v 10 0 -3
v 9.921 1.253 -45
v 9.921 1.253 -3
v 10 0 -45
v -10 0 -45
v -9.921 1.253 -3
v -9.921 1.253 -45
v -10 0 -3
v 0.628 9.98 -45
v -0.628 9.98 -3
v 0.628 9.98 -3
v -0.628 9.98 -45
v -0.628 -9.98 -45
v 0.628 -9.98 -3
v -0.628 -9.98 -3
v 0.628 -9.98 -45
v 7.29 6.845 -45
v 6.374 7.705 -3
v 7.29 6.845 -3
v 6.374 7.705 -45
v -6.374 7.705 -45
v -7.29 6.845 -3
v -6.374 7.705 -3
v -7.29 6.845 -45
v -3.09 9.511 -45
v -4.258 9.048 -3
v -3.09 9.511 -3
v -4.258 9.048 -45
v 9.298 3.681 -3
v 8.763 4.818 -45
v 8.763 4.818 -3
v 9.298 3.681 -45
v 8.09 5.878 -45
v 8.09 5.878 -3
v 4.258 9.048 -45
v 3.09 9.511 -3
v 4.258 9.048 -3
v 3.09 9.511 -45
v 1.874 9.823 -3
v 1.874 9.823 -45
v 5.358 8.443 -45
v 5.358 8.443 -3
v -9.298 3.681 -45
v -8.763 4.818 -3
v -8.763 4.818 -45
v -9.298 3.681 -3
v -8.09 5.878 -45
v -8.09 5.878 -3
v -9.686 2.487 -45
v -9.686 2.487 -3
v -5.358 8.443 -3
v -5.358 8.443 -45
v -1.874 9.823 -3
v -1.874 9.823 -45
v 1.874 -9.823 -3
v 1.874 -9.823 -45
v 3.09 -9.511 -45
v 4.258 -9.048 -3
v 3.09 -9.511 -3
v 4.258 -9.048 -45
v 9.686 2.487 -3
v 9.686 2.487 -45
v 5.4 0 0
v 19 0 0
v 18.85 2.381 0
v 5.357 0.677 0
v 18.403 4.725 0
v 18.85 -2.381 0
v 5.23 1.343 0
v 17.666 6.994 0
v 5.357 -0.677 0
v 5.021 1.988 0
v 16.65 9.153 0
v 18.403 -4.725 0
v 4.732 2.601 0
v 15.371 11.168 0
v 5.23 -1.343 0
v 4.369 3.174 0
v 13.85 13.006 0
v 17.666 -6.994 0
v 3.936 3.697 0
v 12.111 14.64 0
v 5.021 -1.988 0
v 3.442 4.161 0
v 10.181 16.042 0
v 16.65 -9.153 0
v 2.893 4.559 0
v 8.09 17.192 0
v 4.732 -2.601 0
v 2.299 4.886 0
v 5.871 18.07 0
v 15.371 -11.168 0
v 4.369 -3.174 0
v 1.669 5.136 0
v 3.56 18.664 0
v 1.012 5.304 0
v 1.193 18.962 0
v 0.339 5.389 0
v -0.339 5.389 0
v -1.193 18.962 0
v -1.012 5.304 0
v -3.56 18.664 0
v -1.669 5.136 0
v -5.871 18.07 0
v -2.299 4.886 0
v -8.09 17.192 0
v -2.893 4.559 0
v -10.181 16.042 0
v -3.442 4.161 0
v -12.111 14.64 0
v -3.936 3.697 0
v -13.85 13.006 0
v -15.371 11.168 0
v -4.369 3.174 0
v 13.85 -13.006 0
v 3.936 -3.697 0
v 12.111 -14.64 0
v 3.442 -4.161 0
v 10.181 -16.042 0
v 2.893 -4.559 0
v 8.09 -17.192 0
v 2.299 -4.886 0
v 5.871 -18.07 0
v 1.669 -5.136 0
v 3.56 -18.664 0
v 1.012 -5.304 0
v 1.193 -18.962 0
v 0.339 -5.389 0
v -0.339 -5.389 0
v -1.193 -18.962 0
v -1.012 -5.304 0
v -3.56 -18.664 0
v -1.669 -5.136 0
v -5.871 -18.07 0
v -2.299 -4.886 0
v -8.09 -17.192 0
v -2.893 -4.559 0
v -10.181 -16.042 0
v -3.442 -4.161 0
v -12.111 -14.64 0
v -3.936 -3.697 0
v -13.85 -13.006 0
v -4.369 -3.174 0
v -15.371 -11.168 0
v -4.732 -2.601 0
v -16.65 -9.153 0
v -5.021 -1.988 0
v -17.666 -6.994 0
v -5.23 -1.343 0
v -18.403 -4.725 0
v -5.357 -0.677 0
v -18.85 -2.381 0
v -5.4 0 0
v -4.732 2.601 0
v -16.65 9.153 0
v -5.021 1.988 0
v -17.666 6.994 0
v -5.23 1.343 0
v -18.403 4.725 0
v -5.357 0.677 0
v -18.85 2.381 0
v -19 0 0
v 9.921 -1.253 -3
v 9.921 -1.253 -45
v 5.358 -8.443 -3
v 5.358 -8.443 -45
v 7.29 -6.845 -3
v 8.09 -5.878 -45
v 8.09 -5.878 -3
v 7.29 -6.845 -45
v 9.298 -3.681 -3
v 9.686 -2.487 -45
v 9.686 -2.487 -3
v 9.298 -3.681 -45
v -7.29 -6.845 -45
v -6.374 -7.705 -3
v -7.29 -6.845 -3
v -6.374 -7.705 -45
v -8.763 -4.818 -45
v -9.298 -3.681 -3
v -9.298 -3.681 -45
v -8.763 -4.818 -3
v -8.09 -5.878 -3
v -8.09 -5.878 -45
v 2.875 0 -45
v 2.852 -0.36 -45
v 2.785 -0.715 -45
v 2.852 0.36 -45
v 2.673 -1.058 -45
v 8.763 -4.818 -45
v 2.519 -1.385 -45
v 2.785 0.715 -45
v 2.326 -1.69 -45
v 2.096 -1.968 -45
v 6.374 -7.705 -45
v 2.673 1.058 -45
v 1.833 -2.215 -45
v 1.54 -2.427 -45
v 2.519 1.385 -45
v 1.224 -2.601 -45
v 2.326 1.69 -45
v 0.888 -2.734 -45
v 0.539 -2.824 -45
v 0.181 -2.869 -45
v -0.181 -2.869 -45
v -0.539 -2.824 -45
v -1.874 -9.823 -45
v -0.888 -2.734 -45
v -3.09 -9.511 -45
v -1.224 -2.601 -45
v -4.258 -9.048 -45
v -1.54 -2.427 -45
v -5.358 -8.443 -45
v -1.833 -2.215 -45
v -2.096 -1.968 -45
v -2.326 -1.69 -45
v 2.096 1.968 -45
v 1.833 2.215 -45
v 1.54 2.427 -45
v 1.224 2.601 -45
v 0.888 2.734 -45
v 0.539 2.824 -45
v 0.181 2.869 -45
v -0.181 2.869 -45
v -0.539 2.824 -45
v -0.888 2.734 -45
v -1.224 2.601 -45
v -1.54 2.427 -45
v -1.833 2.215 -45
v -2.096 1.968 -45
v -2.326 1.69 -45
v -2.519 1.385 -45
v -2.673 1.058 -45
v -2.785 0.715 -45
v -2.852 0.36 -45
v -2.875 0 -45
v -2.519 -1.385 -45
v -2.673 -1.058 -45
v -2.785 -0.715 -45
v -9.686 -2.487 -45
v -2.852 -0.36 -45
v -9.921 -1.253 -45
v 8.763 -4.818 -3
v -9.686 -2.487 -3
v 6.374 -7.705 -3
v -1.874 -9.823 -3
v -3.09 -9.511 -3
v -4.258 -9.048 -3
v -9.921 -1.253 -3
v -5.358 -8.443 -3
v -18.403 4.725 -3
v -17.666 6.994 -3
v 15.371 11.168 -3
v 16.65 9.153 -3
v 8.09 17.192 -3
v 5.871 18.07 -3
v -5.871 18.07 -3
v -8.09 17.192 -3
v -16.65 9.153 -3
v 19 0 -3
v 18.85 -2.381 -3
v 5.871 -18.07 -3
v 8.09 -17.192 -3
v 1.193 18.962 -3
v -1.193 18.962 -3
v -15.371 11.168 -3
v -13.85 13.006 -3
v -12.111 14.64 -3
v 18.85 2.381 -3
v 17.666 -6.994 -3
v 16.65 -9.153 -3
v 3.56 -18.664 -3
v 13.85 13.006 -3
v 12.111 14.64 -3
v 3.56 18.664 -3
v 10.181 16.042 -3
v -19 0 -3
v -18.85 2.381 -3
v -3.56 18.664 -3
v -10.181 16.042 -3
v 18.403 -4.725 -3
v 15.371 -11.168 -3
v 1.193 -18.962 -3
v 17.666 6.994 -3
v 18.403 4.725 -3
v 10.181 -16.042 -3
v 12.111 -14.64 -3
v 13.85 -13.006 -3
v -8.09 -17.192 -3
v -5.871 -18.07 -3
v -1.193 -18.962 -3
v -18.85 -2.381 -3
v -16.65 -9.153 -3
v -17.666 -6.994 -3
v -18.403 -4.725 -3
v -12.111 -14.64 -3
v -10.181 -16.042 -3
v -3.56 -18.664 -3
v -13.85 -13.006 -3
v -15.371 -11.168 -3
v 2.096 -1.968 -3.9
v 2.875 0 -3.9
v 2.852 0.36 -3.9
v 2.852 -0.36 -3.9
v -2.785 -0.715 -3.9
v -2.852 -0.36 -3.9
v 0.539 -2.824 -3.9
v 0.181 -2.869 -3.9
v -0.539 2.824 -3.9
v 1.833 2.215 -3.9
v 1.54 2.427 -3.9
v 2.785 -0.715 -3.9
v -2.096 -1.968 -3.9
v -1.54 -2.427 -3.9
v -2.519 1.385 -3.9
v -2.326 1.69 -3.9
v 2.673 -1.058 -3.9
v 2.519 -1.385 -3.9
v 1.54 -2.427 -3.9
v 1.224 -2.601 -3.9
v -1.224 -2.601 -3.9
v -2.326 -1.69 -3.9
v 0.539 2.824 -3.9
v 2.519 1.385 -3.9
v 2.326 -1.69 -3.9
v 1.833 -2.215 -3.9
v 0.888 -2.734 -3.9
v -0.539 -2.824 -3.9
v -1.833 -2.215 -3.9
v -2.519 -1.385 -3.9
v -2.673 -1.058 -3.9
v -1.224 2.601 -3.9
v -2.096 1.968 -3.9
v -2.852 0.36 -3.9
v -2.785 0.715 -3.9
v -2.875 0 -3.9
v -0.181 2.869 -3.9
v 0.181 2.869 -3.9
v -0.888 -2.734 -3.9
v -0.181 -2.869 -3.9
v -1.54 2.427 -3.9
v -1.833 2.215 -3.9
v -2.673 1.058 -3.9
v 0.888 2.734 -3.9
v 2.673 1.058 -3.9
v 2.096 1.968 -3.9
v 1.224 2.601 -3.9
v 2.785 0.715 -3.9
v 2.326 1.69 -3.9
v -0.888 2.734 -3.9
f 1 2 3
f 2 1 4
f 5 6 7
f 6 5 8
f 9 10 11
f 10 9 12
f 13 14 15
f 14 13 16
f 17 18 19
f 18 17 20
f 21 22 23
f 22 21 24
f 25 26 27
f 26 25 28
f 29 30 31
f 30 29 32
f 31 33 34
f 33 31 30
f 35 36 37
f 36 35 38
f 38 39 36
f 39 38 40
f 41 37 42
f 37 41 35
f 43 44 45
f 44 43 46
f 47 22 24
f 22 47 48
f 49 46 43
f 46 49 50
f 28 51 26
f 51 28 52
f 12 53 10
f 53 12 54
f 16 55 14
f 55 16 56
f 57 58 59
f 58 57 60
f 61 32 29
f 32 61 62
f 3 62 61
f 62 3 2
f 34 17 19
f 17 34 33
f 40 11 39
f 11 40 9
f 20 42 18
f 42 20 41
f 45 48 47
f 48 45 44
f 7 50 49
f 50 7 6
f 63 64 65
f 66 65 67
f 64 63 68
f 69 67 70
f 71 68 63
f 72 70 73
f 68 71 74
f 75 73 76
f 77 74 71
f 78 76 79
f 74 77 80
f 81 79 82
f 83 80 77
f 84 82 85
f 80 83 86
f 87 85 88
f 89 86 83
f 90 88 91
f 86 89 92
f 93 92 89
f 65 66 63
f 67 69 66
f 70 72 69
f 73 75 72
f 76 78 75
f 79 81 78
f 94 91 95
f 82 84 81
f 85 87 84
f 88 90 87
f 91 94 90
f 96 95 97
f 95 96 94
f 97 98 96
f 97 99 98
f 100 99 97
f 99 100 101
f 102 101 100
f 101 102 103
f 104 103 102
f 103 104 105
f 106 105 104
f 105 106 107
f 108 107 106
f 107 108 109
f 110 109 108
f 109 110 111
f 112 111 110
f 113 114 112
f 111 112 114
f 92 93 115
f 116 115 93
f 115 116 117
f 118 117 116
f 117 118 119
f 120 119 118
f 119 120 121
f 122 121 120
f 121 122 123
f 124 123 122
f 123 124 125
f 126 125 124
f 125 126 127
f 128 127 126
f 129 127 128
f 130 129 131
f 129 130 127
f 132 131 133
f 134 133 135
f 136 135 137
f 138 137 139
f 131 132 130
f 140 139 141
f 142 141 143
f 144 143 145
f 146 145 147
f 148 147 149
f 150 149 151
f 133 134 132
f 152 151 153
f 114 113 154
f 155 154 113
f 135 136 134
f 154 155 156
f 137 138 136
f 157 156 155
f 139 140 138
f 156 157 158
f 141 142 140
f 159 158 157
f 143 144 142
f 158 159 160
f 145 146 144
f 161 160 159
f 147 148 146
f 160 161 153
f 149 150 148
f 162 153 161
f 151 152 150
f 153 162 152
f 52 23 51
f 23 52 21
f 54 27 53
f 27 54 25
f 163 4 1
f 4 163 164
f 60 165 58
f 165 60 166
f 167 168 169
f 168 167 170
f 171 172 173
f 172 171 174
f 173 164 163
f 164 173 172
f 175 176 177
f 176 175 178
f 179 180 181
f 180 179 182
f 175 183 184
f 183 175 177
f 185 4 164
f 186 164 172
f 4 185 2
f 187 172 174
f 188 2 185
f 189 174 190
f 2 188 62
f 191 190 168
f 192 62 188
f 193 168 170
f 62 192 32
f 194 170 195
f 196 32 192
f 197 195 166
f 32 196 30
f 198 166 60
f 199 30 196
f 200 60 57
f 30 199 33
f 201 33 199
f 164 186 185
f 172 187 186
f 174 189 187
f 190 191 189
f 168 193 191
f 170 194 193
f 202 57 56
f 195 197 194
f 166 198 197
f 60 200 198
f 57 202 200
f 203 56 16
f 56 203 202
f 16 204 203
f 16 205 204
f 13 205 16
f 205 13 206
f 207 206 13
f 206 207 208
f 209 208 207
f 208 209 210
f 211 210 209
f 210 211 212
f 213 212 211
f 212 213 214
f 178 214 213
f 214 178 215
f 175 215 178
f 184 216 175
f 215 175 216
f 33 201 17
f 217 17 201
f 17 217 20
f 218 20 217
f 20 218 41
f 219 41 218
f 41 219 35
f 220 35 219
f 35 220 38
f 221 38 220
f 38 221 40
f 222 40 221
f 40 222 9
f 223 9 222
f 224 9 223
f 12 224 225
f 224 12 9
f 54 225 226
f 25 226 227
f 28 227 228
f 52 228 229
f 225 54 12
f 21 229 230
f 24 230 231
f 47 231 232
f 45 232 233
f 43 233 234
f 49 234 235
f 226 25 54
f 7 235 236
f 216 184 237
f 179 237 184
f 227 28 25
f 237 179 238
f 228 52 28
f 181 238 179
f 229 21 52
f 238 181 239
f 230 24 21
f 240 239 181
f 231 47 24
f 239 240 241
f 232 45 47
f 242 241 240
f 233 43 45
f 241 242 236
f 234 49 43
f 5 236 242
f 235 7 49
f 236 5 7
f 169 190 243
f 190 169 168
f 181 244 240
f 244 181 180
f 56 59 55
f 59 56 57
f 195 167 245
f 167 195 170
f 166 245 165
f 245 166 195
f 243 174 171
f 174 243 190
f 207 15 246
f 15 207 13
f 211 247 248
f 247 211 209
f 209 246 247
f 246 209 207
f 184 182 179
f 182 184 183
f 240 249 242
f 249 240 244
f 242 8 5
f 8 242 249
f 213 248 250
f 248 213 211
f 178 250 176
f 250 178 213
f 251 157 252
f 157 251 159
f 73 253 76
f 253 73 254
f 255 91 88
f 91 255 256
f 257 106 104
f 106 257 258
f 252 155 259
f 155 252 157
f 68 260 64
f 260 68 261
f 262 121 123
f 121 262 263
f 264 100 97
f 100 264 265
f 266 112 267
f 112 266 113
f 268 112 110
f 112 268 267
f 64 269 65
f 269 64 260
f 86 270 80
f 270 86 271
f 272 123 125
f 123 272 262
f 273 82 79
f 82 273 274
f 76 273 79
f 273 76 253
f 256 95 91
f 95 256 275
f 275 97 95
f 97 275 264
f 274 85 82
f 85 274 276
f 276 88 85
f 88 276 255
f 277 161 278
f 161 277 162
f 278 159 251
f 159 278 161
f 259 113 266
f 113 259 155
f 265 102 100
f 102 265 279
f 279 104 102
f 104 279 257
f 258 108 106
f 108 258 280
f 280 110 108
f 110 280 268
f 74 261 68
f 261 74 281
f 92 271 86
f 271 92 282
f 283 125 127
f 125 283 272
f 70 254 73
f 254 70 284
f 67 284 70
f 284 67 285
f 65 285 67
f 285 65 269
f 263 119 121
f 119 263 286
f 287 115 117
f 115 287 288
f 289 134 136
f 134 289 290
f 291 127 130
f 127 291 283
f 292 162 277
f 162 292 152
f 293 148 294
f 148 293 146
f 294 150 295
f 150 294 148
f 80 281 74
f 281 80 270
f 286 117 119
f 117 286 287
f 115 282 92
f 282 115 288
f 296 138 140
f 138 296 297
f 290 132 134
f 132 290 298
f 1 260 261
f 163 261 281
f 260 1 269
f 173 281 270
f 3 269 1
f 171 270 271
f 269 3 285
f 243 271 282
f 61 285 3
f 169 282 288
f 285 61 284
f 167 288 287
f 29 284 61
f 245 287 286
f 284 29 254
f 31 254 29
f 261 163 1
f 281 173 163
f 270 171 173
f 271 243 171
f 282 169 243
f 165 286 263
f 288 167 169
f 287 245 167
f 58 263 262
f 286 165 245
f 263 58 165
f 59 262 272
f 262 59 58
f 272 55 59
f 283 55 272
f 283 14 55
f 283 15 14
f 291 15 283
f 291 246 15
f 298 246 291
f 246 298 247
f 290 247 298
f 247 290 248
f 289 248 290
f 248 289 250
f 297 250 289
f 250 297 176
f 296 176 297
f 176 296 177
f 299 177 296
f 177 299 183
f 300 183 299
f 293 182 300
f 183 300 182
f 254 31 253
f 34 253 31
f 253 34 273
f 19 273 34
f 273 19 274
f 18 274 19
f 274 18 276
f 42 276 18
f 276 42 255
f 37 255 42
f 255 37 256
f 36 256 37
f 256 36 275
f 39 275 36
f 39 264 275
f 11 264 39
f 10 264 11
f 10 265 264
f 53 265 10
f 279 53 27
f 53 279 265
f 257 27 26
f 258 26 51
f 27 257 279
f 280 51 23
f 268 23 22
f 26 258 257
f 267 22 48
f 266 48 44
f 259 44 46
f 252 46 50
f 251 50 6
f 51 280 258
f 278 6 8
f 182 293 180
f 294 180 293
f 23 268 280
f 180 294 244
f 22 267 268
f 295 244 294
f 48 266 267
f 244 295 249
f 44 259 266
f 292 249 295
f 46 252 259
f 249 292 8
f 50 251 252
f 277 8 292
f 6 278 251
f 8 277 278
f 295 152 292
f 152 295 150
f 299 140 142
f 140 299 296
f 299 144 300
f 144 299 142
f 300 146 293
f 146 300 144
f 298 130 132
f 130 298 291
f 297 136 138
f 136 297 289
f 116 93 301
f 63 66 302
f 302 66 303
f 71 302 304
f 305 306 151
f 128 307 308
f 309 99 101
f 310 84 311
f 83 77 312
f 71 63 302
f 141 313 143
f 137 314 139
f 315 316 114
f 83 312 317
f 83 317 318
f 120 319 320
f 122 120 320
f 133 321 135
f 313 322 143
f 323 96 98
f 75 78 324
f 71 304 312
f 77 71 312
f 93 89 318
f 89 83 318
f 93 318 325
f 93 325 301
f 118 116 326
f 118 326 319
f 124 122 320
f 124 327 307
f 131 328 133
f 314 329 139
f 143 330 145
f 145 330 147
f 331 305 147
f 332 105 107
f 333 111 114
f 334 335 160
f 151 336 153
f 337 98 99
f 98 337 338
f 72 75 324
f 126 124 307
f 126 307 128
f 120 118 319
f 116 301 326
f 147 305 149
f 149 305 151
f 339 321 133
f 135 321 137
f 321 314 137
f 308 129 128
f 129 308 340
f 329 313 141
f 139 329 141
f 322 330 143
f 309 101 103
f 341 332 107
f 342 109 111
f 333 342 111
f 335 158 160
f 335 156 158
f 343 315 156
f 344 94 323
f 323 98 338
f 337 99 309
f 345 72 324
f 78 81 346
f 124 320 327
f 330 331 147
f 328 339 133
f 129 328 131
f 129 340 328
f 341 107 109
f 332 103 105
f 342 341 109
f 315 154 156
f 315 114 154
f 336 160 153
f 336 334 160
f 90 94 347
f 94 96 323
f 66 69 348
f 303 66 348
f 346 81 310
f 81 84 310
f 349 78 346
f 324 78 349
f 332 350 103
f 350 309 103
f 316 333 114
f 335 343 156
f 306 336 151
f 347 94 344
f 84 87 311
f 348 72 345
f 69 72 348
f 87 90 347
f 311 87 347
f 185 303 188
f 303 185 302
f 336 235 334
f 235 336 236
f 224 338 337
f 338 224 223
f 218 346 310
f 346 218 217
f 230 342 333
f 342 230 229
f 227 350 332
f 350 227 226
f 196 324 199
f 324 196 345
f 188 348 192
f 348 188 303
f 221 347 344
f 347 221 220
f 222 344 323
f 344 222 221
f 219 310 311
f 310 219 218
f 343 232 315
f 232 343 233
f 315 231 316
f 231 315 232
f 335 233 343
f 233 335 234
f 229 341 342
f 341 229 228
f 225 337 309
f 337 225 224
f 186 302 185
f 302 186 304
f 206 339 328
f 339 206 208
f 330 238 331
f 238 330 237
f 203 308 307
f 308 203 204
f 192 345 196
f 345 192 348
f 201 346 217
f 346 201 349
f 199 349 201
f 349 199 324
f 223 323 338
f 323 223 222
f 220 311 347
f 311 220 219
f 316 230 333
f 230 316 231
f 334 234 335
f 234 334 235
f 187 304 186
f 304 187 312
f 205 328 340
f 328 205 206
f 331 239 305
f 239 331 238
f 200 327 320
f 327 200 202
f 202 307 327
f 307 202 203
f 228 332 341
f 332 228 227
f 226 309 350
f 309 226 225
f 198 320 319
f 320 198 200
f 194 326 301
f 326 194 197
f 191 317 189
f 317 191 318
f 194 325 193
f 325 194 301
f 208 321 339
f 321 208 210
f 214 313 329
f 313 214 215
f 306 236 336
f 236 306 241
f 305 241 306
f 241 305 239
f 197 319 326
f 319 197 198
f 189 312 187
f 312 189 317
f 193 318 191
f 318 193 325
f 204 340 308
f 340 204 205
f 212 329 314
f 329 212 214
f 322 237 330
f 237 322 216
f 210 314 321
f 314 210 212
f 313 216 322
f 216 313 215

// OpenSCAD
$fn = 50;


difference() {
	union() {
		translate(v = [0, 0, -45.0000000000]) {
			cylinder(h = 45, r = 10.0000000000);
		}
		translate(v = [0, 0, -3.0000000000]) {
			cylinder(h = 3, r = 19.0000000000);
		}
	}
	union() {
		translate(v = [0, 0, 0]) {
			rotate(a = [0, 0, 0]) {
				difference() {
					union() {
						#translate(v = [0, 0, -45.0000000000]) {
							cylinder(h = 45, r = 2.6000000000);
						}
						#translate(v = [0, 0, -3.9000000000]) {
							cylinder(h = 3.9000000000, r1 = 2.8750000000, r2 = 5.4000000000);
						}
						#translate(v = [0, 0, -45.0000000000]) {
							cylinder(h = 45, r = 2.8750000000);
						}
						#translate(v = [0, 0, -45.0000000000]) {
							cylinder(h = 45, r = 2.6000000000);
						}
					}
					union();
				}
			}
		}
	}
}
